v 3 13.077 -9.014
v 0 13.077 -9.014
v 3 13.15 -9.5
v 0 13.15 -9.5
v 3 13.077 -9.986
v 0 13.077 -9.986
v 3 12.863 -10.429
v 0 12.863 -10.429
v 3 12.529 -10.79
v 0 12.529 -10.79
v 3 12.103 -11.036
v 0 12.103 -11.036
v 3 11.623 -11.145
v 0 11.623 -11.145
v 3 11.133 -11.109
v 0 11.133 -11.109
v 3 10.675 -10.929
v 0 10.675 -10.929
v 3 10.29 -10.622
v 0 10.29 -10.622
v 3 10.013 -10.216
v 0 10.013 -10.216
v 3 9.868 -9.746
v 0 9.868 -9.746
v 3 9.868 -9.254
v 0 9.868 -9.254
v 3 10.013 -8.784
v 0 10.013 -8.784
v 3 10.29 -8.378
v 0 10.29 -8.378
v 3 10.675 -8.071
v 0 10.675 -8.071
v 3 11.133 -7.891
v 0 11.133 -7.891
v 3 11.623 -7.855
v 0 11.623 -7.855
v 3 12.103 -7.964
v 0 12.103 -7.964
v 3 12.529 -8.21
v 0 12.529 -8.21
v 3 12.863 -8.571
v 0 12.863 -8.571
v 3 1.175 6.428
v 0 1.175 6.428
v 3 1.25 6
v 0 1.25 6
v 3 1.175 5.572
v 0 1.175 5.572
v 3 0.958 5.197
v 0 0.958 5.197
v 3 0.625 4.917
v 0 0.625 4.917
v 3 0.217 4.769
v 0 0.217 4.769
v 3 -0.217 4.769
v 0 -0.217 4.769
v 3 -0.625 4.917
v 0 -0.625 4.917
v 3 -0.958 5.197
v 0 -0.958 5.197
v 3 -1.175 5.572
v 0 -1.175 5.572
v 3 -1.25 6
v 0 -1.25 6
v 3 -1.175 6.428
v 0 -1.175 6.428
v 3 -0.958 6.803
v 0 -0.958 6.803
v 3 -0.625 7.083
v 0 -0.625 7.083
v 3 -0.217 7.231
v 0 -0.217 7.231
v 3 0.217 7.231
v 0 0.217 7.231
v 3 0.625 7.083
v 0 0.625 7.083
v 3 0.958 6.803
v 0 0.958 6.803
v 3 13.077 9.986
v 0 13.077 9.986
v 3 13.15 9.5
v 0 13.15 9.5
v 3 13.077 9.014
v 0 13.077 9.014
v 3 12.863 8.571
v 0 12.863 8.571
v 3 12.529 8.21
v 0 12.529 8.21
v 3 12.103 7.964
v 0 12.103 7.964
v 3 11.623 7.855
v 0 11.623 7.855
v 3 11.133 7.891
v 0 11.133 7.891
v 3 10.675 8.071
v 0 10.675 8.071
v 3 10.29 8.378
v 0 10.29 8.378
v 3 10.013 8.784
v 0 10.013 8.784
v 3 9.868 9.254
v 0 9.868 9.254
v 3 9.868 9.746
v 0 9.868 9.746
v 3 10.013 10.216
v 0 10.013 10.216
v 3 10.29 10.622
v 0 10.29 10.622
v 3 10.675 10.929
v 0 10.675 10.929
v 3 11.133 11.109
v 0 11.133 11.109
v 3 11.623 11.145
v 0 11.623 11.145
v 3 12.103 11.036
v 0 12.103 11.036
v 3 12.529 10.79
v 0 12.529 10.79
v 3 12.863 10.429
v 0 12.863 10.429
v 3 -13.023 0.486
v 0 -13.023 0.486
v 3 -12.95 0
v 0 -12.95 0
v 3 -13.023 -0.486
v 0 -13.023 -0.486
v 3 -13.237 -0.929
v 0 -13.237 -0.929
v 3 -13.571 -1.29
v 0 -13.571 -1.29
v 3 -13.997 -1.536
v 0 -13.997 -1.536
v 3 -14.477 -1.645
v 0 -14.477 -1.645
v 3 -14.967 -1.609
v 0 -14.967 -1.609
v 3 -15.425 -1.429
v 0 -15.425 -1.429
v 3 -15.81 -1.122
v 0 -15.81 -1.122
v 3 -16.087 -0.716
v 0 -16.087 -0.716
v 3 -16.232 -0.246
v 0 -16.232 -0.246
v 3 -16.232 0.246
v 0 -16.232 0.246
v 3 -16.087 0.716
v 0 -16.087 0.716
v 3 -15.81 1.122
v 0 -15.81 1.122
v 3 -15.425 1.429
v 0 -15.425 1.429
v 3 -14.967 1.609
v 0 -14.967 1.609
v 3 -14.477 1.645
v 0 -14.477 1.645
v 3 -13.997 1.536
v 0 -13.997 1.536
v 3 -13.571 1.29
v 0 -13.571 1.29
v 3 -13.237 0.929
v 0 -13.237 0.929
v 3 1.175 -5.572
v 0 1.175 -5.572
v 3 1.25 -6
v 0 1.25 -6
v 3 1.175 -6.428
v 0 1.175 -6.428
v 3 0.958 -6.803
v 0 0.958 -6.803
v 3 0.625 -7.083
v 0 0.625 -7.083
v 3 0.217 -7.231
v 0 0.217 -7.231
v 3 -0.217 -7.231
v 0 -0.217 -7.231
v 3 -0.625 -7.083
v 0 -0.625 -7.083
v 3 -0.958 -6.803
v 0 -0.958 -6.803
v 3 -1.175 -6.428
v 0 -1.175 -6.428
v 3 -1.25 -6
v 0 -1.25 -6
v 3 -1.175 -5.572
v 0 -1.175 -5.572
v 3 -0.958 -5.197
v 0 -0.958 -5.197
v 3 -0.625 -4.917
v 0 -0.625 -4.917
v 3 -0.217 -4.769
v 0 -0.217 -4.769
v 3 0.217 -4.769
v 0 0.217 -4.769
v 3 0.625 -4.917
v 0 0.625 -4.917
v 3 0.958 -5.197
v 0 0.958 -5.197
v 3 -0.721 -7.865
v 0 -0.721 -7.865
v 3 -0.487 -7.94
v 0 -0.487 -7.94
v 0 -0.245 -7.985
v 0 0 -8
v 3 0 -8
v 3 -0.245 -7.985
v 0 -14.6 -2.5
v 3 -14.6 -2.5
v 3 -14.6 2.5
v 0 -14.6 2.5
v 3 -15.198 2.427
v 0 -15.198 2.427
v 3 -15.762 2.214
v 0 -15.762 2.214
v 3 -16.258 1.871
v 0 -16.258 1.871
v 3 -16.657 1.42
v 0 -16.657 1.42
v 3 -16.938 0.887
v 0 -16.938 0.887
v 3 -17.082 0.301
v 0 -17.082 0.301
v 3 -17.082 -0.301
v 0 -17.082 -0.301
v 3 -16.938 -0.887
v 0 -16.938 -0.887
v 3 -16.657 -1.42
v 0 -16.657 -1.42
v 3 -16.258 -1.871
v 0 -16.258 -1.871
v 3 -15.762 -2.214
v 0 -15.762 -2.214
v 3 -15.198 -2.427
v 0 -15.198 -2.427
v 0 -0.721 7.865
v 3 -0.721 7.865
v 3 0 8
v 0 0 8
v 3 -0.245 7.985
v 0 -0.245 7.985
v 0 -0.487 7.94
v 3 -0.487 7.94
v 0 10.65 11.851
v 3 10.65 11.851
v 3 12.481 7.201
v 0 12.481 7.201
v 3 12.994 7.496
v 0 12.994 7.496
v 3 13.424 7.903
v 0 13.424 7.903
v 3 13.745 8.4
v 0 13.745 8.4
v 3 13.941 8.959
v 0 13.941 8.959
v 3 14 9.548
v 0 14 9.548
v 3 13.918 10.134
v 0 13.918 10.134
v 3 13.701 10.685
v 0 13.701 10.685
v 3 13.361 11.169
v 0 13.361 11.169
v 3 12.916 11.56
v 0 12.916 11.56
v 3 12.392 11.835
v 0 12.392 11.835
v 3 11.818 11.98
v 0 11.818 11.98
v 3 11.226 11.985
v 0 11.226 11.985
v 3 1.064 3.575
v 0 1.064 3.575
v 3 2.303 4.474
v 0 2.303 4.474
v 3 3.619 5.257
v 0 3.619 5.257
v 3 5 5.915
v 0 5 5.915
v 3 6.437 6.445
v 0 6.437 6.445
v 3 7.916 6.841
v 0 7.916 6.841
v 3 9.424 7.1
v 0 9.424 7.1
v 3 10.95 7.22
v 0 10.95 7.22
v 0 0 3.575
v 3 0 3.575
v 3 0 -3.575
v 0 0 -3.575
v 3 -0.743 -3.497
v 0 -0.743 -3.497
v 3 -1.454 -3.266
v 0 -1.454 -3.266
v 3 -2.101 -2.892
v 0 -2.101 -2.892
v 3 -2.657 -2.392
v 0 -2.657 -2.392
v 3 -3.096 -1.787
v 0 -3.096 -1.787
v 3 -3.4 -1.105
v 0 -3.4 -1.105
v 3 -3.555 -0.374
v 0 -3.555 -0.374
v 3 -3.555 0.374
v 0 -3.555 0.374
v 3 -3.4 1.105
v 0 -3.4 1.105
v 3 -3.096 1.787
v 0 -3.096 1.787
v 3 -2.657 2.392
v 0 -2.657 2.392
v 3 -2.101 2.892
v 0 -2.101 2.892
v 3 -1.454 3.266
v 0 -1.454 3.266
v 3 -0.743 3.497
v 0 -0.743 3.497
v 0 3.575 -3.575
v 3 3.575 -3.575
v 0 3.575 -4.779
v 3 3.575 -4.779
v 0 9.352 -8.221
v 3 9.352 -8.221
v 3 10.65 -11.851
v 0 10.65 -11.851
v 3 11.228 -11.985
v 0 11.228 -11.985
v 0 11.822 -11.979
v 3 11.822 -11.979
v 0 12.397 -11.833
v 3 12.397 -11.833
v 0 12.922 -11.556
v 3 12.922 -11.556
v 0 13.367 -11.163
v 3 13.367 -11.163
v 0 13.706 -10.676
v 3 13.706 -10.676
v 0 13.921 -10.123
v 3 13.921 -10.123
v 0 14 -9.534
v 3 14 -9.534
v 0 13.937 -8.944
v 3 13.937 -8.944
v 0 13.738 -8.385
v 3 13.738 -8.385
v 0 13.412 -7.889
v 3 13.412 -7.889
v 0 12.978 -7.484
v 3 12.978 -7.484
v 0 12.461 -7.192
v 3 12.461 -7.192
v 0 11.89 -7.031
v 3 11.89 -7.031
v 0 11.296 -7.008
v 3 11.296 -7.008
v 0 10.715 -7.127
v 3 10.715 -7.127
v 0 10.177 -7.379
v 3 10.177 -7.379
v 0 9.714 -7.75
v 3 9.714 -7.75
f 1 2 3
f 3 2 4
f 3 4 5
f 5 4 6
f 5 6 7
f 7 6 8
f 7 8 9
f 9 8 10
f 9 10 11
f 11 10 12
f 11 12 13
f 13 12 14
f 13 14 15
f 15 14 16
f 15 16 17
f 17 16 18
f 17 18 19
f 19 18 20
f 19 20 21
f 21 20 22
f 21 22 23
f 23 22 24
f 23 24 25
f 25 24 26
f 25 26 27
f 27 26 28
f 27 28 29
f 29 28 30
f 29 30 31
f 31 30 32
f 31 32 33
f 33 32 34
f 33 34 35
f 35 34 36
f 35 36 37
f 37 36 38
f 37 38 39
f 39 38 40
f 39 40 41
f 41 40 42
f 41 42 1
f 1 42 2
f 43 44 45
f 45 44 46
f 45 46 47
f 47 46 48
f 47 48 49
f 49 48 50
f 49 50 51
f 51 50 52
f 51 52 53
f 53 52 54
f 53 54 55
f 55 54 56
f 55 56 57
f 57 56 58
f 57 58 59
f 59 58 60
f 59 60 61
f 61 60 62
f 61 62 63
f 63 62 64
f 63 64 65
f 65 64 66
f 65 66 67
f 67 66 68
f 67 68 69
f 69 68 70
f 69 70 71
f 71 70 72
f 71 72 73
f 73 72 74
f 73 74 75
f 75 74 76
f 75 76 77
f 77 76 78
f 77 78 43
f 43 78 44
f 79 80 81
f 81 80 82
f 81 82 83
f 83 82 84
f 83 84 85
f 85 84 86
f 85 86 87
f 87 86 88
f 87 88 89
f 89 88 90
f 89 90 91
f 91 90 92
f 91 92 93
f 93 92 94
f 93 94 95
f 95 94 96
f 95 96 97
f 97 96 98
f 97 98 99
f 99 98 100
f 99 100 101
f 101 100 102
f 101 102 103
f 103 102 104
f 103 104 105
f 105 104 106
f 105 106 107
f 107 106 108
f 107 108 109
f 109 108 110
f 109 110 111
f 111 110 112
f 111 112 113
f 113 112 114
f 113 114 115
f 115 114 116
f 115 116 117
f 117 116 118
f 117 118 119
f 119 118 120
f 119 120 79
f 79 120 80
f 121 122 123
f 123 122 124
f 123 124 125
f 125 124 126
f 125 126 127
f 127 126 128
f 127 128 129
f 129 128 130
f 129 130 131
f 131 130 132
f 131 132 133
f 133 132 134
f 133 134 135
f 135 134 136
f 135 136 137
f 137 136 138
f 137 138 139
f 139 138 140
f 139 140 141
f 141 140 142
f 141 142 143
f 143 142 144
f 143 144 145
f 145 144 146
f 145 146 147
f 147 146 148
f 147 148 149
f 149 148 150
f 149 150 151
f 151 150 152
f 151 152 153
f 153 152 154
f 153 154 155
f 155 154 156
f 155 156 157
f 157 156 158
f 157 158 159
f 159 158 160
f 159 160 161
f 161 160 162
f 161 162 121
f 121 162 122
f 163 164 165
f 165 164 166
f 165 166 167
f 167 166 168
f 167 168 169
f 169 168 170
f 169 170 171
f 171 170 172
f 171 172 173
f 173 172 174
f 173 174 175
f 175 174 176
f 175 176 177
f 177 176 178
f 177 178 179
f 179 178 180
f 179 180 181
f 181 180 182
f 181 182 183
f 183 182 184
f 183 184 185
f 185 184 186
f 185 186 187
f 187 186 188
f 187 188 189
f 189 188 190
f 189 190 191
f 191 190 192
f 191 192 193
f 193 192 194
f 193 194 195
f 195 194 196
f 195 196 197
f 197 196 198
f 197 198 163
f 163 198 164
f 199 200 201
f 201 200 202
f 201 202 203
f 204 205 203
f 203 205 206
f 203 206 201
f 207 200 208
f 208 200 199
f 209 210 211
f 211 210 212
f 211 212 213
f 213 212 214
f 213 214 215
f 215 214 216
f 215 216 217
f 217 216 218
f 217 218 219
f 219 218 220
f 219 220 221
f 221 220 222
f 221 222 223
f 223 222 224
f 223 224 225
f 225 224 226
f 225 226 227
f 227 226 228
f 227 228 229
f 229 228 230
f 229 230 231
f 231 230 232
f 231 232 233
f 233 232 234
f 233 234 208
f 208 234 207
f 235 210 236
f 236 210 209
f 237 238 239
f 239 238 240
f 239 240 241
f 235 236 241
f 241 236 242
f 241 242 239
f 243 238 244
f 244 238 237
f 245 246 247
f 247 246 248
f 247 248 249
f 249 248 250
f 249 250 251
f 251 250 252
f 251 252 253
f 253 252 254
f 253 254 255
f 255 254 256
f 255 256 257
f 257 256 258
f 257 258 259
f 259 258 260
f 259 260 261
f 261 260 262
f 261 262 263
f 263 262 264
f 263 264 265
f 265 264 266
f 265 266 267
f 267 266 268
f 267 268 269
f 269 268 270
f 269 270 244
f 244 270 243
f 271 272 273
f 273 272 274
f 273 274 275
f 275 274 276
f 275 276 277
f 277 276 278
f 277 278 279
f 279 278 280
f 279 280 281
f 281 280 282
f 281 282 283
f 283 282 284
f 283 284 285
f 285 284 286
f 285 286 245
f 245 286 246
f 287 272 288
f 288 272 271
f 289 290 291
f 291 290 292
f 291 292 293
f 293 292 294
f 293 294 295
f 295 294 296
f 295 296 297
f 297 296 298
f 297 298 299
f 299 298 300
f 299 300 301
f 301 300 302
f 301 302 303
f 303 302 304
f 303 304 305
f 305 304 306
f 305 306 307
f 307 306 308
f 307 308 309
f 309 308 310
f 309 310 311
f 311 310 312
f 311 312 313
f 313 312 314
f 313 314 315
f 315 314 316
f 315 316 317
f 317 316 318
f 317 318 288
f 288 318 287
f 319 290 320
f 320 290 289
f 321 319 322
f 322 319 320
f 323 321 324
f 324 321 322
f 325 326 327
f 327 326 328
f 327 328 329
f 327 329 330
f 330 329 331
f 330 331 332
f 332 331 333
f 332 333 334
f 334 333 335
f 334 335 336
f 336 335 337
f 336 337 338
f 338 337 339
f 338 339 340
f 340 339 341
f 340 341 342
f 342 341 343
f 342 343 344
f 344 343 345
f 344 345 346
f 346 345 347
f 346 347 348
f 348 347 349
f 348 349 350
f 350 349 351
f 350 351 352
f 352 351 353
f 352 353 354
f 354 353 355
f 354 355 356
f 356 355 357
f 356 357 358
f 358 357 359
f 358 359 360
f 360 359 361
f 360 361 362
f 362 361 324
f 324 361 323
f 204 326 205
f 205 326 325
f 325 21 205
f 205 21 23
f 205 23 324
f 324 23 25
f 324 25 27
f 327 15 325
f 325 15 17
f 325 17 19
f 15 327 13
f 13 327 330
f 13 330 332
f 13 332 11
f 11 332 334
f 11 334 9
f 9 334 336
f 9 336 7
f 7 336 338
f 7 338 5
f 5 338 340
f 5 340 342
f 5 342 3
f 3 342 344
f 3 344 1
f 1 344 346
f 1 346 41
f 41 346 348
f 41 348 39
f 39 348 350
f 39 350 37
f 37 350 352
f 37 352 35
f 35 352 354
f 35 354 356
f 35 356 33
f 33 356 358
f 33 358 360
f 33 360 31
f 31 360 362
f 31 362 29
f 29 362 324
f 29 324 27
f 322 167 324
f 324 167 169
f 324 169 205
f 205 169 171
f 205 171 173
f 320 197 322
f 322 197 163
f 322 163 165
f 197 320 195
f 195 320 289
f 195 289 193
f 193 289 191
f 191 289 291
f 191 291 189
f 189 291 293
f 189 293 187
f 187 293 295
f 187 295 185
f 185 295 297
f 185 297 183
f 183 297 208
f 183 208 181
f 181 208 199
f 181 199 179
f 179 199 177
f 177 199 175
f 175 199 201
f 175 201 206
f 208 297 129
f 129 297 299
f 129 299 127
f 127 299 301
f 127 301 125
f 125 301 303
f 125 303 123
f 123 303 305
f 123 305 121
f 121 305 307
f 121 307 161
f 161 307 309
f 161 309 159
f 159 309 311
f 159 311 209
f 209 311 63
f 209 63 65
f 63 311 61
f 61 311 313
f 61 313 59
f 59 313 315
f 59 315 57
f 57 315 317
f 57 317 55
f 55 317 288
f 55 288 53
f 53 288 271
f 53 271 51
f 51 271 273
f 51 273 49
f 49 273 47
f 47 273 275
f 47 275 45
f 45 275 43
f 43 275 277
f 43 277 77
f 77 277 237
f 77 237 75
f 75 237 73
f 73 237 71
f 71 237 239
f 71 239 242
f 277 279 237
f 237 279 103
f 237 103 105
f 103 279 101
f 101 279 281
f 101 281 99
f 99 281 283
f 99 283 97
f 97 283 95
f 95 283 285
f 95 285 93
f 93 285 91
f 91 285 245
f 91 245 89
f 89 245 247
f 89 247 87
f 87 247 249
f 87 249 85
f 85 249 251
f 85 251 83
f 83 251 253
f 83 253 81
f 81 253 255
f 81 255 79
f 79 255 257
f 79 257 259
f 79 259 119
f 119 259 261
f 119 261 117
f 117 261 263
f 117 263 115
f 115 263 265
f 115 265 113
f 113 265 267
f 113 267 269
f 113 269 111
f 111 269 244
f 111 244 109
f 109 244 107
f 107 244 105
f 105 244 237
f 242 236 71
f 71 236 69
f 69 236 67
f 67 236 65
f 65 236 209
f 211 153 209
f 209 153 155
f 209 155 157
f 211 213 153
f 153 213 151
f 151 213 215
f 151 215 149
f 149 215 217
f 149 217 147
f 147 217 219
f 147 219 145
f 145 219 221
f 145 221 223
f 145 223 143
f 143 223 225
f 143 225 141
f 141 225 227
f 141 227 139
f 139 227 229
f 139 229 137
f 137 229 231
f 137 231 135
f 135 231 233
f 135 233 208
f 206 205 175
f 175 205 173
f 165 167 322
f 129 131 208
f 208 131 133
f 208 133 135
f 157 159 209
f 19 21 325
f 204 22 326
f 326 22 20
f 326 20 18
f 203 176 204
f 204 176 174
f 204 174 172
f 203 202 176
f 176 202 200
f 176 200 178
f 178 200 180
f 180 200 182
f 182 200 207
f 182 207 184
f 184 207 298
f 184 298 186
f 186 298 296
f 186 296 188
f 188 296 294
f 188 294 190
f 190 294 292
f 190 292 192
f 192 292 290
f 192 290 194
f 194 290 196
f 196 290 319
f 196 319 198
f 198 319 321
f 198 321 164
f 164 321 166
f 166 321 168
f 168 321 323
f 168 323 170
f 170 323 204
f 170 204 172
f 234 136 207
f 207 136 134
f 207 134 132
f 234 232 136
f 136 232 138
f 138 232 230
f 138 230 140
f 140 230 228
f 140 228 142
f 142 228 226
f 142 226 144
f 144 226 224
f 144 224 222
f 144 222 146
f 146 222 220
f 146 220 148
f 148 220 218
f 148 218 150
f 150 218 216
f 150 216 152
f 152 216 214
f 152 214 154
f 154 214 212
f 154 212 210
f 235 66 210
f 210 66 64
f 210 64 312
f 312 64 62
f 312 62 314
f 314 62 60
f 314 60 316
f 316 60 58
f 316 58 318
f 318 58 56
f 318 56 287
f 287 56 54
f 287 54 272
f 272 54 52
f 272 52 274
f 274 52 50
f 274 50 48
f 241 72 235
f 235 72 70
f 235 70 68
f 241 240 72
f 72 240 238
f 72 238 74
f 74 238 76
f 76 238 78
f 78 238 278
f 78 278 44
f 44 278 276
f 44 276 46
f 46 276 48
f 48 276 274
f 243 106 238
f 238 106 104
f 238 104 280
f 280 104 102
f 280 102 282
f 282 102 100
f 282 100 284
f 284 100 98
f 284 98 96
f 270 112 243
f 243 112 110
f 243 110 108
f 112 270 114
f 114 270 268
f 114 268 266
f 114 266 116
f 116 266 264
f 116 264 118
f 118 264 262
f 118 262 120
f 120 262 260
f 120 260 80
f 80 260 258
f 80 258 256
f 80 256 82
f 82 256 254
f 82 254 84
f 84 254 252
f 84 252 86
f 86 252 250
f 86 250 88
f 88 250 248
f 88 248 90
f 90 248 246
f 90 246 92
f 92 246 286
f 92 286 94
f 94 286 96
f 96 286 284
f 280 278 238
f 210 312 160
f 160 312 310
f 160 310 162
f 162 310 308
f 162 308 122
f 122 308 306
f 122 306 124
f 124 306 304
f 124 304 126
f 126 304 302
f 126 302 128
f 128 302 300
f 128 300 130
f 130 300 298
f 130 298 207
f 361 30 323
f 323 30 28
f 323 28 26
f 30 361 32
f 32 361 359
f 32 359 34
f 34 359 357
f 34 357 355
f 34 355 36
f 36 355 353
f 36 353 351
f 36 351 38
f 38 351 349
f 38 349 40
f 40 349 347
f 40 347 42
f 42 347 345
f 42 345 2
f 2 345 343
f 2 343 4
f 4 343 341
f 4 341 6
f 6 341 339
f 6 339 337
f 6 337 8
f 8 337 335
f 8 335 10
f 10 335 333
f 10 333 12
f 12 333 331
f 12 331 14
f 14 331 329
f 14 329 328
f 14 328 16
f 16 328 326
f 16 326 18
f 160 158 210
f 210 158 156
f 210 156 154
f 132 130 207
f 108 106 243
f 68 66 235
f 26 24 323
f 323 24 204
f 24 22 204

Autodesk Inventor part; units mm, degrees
ref_plane "YZ Plane" through (0, 0, 0) normal (1, 0, 0) x (0, 1, 0)
ref_plane "XZ Plane" through (0, 0, 0) normal (0, 1, 0) x (-1, 0, 0)
ref_plane "XY Plane" through (0, 0, 0) normal (0, 0, 1) x (1, 0, 0)
sketch "スケッチ1" plane through (0, 0, 0) normal (1, 0, 0) x (0, 1, 0)
  line L0 (0, 0) -> (0, 6)
  line L1 (0, 6) -> (0, -6)
  line L2 (0, 0) -> (11.5, 0)
  line L3 (11.5, 0) -> (11.5, 9.5)
  line L4 (11.5, 9.5) -> (11.5, -9.5)
  circle A0 centre (0, 6) radius 1.25
  circle A1 centre (0, -6) radius 1.25
  circle A2 centre (11.5, 9.5) radius 1.65
  circle A3 centre (11.5, -9.5) radius 1.65
  circle A4 centre (11.5, 9.5) radius 2.5
  circle A5 centre (11.5, -9.5) radius 2.5
  circle A6 centre (0, 0) radius 2.65
  line L5 (0, 0) -> (-14.6, 0)
  circle A7 centre (-14.6, 0) radius 1.65
  circle A8 centre (-14.6, 0) radius 2.5
  circle A9 centre (0, 6) radius 2
  circle A10 centre (0, -6) radius 2
  line L6 (0, 8) -> (10.6499, 11.851)
  line L7 (0, -8) -> (10.6499, -11.851)
  line L8 (-14.6, 0) -> (-14.6, -2.5)
  line L9 (-14.6, 0) -> (-12.1, 0) construction
  line L10 (-14.6, -2.5) -> (-14.6, 2.5)
  line L11 (-14.6, -2.5) -> (-0.7212, -7.8655)
  line L12 (-14.6, 2.5) -> (-0.7212, 7.8655)
  circle A11 centre (11.5, -9.5) radius 14.9164
  line L13 (11.5, -9.5) -> (0, 0)
  line L14 (11.5, -9.5) -> (0, -2.65)
  line L15 (14, 9.5) -> (14, 6.6979)
  circle A12 centre (11.5, -9.5) radius 16.7294
  circle A13 centre (0, 0) radius 3.575
  circle A14 centre (11.5, -9.5) radius 17.4128
  line L16 (0, 3.575) -> (11.5, 3.575)
  line L17 (0, -3.575) -> (1.5529, -3.575)
  line L18 (3.575, 0) -> (3.575, -4.7795)
  line L19 (1.5529, -3.575) -> (3.575, -3.575)
  circle A15 centre (11.5, -9.5) radius 9.895
  point P0 (9.3522, -8.2206)
  point P1 (0, 2.65)
  point P2 (12.4812, 7.2006)
  point P3 (1.2029, -3.3665)
  point P4 (1.0637, 3.575)
  point P5 (2.9988, -4.4363)
  dimension "d9" = 5
  dimension "d10" = 5.3
  dimension "d0" = 6
  dimension "d1" = 12
  dimension "d2" = 11.5
  dimension "d3" = 9.5
  dimension "d4" = 19
  dimension "d5" = 2.5
  dimension "d6" = 3.3
  dimension "d7" = 3.3
  dimension "d8" = 5
  dimension "d11" = 14.6
  dimension "d12" = 3.3
  dimension "d13" = 5
  dimension "d14" = 4
  dimension "d15" = 4
  dimension "d16" = 90
  dimension "d21" = 7.15
extrude "押し出し2" add sketch "スケッチ1" along normal blind 3 contours A13 L5 A8 L12 A9 L0 | L0 A9 A14 | A14 A9 A4 A12 L16 | L17 L14 A15 L7 A10 L1 | L1 A10 L11 A11 A13 | A11 L11 A12 A13 | A9 A14 | A13 A14 L11 A8 L5 | A14 A9 | A10 | L19 A15 L14 | A12 L11 A14 A13 | A8 L8 A7 L5 | L5 A7 L10 A8 | A9 L6 A4 A14 | A4 A14 A2 L3 A12 | A15 L18 L14 | L14 A5 L7 A15 | L10 A7 L8 A8 | A4 A14 A2 | L3 A2 A14 A4 A12 | A5 L14 A3 L4 | L4 A3 L13 A5 | L13 A3 L14 A5
sketch "スケッチ2" plane through (3, 0, 0) normal (1, 0, 0) x (0, 0, -1)
  point P0 (0, 0)
properties part number "ikafly2b7"
